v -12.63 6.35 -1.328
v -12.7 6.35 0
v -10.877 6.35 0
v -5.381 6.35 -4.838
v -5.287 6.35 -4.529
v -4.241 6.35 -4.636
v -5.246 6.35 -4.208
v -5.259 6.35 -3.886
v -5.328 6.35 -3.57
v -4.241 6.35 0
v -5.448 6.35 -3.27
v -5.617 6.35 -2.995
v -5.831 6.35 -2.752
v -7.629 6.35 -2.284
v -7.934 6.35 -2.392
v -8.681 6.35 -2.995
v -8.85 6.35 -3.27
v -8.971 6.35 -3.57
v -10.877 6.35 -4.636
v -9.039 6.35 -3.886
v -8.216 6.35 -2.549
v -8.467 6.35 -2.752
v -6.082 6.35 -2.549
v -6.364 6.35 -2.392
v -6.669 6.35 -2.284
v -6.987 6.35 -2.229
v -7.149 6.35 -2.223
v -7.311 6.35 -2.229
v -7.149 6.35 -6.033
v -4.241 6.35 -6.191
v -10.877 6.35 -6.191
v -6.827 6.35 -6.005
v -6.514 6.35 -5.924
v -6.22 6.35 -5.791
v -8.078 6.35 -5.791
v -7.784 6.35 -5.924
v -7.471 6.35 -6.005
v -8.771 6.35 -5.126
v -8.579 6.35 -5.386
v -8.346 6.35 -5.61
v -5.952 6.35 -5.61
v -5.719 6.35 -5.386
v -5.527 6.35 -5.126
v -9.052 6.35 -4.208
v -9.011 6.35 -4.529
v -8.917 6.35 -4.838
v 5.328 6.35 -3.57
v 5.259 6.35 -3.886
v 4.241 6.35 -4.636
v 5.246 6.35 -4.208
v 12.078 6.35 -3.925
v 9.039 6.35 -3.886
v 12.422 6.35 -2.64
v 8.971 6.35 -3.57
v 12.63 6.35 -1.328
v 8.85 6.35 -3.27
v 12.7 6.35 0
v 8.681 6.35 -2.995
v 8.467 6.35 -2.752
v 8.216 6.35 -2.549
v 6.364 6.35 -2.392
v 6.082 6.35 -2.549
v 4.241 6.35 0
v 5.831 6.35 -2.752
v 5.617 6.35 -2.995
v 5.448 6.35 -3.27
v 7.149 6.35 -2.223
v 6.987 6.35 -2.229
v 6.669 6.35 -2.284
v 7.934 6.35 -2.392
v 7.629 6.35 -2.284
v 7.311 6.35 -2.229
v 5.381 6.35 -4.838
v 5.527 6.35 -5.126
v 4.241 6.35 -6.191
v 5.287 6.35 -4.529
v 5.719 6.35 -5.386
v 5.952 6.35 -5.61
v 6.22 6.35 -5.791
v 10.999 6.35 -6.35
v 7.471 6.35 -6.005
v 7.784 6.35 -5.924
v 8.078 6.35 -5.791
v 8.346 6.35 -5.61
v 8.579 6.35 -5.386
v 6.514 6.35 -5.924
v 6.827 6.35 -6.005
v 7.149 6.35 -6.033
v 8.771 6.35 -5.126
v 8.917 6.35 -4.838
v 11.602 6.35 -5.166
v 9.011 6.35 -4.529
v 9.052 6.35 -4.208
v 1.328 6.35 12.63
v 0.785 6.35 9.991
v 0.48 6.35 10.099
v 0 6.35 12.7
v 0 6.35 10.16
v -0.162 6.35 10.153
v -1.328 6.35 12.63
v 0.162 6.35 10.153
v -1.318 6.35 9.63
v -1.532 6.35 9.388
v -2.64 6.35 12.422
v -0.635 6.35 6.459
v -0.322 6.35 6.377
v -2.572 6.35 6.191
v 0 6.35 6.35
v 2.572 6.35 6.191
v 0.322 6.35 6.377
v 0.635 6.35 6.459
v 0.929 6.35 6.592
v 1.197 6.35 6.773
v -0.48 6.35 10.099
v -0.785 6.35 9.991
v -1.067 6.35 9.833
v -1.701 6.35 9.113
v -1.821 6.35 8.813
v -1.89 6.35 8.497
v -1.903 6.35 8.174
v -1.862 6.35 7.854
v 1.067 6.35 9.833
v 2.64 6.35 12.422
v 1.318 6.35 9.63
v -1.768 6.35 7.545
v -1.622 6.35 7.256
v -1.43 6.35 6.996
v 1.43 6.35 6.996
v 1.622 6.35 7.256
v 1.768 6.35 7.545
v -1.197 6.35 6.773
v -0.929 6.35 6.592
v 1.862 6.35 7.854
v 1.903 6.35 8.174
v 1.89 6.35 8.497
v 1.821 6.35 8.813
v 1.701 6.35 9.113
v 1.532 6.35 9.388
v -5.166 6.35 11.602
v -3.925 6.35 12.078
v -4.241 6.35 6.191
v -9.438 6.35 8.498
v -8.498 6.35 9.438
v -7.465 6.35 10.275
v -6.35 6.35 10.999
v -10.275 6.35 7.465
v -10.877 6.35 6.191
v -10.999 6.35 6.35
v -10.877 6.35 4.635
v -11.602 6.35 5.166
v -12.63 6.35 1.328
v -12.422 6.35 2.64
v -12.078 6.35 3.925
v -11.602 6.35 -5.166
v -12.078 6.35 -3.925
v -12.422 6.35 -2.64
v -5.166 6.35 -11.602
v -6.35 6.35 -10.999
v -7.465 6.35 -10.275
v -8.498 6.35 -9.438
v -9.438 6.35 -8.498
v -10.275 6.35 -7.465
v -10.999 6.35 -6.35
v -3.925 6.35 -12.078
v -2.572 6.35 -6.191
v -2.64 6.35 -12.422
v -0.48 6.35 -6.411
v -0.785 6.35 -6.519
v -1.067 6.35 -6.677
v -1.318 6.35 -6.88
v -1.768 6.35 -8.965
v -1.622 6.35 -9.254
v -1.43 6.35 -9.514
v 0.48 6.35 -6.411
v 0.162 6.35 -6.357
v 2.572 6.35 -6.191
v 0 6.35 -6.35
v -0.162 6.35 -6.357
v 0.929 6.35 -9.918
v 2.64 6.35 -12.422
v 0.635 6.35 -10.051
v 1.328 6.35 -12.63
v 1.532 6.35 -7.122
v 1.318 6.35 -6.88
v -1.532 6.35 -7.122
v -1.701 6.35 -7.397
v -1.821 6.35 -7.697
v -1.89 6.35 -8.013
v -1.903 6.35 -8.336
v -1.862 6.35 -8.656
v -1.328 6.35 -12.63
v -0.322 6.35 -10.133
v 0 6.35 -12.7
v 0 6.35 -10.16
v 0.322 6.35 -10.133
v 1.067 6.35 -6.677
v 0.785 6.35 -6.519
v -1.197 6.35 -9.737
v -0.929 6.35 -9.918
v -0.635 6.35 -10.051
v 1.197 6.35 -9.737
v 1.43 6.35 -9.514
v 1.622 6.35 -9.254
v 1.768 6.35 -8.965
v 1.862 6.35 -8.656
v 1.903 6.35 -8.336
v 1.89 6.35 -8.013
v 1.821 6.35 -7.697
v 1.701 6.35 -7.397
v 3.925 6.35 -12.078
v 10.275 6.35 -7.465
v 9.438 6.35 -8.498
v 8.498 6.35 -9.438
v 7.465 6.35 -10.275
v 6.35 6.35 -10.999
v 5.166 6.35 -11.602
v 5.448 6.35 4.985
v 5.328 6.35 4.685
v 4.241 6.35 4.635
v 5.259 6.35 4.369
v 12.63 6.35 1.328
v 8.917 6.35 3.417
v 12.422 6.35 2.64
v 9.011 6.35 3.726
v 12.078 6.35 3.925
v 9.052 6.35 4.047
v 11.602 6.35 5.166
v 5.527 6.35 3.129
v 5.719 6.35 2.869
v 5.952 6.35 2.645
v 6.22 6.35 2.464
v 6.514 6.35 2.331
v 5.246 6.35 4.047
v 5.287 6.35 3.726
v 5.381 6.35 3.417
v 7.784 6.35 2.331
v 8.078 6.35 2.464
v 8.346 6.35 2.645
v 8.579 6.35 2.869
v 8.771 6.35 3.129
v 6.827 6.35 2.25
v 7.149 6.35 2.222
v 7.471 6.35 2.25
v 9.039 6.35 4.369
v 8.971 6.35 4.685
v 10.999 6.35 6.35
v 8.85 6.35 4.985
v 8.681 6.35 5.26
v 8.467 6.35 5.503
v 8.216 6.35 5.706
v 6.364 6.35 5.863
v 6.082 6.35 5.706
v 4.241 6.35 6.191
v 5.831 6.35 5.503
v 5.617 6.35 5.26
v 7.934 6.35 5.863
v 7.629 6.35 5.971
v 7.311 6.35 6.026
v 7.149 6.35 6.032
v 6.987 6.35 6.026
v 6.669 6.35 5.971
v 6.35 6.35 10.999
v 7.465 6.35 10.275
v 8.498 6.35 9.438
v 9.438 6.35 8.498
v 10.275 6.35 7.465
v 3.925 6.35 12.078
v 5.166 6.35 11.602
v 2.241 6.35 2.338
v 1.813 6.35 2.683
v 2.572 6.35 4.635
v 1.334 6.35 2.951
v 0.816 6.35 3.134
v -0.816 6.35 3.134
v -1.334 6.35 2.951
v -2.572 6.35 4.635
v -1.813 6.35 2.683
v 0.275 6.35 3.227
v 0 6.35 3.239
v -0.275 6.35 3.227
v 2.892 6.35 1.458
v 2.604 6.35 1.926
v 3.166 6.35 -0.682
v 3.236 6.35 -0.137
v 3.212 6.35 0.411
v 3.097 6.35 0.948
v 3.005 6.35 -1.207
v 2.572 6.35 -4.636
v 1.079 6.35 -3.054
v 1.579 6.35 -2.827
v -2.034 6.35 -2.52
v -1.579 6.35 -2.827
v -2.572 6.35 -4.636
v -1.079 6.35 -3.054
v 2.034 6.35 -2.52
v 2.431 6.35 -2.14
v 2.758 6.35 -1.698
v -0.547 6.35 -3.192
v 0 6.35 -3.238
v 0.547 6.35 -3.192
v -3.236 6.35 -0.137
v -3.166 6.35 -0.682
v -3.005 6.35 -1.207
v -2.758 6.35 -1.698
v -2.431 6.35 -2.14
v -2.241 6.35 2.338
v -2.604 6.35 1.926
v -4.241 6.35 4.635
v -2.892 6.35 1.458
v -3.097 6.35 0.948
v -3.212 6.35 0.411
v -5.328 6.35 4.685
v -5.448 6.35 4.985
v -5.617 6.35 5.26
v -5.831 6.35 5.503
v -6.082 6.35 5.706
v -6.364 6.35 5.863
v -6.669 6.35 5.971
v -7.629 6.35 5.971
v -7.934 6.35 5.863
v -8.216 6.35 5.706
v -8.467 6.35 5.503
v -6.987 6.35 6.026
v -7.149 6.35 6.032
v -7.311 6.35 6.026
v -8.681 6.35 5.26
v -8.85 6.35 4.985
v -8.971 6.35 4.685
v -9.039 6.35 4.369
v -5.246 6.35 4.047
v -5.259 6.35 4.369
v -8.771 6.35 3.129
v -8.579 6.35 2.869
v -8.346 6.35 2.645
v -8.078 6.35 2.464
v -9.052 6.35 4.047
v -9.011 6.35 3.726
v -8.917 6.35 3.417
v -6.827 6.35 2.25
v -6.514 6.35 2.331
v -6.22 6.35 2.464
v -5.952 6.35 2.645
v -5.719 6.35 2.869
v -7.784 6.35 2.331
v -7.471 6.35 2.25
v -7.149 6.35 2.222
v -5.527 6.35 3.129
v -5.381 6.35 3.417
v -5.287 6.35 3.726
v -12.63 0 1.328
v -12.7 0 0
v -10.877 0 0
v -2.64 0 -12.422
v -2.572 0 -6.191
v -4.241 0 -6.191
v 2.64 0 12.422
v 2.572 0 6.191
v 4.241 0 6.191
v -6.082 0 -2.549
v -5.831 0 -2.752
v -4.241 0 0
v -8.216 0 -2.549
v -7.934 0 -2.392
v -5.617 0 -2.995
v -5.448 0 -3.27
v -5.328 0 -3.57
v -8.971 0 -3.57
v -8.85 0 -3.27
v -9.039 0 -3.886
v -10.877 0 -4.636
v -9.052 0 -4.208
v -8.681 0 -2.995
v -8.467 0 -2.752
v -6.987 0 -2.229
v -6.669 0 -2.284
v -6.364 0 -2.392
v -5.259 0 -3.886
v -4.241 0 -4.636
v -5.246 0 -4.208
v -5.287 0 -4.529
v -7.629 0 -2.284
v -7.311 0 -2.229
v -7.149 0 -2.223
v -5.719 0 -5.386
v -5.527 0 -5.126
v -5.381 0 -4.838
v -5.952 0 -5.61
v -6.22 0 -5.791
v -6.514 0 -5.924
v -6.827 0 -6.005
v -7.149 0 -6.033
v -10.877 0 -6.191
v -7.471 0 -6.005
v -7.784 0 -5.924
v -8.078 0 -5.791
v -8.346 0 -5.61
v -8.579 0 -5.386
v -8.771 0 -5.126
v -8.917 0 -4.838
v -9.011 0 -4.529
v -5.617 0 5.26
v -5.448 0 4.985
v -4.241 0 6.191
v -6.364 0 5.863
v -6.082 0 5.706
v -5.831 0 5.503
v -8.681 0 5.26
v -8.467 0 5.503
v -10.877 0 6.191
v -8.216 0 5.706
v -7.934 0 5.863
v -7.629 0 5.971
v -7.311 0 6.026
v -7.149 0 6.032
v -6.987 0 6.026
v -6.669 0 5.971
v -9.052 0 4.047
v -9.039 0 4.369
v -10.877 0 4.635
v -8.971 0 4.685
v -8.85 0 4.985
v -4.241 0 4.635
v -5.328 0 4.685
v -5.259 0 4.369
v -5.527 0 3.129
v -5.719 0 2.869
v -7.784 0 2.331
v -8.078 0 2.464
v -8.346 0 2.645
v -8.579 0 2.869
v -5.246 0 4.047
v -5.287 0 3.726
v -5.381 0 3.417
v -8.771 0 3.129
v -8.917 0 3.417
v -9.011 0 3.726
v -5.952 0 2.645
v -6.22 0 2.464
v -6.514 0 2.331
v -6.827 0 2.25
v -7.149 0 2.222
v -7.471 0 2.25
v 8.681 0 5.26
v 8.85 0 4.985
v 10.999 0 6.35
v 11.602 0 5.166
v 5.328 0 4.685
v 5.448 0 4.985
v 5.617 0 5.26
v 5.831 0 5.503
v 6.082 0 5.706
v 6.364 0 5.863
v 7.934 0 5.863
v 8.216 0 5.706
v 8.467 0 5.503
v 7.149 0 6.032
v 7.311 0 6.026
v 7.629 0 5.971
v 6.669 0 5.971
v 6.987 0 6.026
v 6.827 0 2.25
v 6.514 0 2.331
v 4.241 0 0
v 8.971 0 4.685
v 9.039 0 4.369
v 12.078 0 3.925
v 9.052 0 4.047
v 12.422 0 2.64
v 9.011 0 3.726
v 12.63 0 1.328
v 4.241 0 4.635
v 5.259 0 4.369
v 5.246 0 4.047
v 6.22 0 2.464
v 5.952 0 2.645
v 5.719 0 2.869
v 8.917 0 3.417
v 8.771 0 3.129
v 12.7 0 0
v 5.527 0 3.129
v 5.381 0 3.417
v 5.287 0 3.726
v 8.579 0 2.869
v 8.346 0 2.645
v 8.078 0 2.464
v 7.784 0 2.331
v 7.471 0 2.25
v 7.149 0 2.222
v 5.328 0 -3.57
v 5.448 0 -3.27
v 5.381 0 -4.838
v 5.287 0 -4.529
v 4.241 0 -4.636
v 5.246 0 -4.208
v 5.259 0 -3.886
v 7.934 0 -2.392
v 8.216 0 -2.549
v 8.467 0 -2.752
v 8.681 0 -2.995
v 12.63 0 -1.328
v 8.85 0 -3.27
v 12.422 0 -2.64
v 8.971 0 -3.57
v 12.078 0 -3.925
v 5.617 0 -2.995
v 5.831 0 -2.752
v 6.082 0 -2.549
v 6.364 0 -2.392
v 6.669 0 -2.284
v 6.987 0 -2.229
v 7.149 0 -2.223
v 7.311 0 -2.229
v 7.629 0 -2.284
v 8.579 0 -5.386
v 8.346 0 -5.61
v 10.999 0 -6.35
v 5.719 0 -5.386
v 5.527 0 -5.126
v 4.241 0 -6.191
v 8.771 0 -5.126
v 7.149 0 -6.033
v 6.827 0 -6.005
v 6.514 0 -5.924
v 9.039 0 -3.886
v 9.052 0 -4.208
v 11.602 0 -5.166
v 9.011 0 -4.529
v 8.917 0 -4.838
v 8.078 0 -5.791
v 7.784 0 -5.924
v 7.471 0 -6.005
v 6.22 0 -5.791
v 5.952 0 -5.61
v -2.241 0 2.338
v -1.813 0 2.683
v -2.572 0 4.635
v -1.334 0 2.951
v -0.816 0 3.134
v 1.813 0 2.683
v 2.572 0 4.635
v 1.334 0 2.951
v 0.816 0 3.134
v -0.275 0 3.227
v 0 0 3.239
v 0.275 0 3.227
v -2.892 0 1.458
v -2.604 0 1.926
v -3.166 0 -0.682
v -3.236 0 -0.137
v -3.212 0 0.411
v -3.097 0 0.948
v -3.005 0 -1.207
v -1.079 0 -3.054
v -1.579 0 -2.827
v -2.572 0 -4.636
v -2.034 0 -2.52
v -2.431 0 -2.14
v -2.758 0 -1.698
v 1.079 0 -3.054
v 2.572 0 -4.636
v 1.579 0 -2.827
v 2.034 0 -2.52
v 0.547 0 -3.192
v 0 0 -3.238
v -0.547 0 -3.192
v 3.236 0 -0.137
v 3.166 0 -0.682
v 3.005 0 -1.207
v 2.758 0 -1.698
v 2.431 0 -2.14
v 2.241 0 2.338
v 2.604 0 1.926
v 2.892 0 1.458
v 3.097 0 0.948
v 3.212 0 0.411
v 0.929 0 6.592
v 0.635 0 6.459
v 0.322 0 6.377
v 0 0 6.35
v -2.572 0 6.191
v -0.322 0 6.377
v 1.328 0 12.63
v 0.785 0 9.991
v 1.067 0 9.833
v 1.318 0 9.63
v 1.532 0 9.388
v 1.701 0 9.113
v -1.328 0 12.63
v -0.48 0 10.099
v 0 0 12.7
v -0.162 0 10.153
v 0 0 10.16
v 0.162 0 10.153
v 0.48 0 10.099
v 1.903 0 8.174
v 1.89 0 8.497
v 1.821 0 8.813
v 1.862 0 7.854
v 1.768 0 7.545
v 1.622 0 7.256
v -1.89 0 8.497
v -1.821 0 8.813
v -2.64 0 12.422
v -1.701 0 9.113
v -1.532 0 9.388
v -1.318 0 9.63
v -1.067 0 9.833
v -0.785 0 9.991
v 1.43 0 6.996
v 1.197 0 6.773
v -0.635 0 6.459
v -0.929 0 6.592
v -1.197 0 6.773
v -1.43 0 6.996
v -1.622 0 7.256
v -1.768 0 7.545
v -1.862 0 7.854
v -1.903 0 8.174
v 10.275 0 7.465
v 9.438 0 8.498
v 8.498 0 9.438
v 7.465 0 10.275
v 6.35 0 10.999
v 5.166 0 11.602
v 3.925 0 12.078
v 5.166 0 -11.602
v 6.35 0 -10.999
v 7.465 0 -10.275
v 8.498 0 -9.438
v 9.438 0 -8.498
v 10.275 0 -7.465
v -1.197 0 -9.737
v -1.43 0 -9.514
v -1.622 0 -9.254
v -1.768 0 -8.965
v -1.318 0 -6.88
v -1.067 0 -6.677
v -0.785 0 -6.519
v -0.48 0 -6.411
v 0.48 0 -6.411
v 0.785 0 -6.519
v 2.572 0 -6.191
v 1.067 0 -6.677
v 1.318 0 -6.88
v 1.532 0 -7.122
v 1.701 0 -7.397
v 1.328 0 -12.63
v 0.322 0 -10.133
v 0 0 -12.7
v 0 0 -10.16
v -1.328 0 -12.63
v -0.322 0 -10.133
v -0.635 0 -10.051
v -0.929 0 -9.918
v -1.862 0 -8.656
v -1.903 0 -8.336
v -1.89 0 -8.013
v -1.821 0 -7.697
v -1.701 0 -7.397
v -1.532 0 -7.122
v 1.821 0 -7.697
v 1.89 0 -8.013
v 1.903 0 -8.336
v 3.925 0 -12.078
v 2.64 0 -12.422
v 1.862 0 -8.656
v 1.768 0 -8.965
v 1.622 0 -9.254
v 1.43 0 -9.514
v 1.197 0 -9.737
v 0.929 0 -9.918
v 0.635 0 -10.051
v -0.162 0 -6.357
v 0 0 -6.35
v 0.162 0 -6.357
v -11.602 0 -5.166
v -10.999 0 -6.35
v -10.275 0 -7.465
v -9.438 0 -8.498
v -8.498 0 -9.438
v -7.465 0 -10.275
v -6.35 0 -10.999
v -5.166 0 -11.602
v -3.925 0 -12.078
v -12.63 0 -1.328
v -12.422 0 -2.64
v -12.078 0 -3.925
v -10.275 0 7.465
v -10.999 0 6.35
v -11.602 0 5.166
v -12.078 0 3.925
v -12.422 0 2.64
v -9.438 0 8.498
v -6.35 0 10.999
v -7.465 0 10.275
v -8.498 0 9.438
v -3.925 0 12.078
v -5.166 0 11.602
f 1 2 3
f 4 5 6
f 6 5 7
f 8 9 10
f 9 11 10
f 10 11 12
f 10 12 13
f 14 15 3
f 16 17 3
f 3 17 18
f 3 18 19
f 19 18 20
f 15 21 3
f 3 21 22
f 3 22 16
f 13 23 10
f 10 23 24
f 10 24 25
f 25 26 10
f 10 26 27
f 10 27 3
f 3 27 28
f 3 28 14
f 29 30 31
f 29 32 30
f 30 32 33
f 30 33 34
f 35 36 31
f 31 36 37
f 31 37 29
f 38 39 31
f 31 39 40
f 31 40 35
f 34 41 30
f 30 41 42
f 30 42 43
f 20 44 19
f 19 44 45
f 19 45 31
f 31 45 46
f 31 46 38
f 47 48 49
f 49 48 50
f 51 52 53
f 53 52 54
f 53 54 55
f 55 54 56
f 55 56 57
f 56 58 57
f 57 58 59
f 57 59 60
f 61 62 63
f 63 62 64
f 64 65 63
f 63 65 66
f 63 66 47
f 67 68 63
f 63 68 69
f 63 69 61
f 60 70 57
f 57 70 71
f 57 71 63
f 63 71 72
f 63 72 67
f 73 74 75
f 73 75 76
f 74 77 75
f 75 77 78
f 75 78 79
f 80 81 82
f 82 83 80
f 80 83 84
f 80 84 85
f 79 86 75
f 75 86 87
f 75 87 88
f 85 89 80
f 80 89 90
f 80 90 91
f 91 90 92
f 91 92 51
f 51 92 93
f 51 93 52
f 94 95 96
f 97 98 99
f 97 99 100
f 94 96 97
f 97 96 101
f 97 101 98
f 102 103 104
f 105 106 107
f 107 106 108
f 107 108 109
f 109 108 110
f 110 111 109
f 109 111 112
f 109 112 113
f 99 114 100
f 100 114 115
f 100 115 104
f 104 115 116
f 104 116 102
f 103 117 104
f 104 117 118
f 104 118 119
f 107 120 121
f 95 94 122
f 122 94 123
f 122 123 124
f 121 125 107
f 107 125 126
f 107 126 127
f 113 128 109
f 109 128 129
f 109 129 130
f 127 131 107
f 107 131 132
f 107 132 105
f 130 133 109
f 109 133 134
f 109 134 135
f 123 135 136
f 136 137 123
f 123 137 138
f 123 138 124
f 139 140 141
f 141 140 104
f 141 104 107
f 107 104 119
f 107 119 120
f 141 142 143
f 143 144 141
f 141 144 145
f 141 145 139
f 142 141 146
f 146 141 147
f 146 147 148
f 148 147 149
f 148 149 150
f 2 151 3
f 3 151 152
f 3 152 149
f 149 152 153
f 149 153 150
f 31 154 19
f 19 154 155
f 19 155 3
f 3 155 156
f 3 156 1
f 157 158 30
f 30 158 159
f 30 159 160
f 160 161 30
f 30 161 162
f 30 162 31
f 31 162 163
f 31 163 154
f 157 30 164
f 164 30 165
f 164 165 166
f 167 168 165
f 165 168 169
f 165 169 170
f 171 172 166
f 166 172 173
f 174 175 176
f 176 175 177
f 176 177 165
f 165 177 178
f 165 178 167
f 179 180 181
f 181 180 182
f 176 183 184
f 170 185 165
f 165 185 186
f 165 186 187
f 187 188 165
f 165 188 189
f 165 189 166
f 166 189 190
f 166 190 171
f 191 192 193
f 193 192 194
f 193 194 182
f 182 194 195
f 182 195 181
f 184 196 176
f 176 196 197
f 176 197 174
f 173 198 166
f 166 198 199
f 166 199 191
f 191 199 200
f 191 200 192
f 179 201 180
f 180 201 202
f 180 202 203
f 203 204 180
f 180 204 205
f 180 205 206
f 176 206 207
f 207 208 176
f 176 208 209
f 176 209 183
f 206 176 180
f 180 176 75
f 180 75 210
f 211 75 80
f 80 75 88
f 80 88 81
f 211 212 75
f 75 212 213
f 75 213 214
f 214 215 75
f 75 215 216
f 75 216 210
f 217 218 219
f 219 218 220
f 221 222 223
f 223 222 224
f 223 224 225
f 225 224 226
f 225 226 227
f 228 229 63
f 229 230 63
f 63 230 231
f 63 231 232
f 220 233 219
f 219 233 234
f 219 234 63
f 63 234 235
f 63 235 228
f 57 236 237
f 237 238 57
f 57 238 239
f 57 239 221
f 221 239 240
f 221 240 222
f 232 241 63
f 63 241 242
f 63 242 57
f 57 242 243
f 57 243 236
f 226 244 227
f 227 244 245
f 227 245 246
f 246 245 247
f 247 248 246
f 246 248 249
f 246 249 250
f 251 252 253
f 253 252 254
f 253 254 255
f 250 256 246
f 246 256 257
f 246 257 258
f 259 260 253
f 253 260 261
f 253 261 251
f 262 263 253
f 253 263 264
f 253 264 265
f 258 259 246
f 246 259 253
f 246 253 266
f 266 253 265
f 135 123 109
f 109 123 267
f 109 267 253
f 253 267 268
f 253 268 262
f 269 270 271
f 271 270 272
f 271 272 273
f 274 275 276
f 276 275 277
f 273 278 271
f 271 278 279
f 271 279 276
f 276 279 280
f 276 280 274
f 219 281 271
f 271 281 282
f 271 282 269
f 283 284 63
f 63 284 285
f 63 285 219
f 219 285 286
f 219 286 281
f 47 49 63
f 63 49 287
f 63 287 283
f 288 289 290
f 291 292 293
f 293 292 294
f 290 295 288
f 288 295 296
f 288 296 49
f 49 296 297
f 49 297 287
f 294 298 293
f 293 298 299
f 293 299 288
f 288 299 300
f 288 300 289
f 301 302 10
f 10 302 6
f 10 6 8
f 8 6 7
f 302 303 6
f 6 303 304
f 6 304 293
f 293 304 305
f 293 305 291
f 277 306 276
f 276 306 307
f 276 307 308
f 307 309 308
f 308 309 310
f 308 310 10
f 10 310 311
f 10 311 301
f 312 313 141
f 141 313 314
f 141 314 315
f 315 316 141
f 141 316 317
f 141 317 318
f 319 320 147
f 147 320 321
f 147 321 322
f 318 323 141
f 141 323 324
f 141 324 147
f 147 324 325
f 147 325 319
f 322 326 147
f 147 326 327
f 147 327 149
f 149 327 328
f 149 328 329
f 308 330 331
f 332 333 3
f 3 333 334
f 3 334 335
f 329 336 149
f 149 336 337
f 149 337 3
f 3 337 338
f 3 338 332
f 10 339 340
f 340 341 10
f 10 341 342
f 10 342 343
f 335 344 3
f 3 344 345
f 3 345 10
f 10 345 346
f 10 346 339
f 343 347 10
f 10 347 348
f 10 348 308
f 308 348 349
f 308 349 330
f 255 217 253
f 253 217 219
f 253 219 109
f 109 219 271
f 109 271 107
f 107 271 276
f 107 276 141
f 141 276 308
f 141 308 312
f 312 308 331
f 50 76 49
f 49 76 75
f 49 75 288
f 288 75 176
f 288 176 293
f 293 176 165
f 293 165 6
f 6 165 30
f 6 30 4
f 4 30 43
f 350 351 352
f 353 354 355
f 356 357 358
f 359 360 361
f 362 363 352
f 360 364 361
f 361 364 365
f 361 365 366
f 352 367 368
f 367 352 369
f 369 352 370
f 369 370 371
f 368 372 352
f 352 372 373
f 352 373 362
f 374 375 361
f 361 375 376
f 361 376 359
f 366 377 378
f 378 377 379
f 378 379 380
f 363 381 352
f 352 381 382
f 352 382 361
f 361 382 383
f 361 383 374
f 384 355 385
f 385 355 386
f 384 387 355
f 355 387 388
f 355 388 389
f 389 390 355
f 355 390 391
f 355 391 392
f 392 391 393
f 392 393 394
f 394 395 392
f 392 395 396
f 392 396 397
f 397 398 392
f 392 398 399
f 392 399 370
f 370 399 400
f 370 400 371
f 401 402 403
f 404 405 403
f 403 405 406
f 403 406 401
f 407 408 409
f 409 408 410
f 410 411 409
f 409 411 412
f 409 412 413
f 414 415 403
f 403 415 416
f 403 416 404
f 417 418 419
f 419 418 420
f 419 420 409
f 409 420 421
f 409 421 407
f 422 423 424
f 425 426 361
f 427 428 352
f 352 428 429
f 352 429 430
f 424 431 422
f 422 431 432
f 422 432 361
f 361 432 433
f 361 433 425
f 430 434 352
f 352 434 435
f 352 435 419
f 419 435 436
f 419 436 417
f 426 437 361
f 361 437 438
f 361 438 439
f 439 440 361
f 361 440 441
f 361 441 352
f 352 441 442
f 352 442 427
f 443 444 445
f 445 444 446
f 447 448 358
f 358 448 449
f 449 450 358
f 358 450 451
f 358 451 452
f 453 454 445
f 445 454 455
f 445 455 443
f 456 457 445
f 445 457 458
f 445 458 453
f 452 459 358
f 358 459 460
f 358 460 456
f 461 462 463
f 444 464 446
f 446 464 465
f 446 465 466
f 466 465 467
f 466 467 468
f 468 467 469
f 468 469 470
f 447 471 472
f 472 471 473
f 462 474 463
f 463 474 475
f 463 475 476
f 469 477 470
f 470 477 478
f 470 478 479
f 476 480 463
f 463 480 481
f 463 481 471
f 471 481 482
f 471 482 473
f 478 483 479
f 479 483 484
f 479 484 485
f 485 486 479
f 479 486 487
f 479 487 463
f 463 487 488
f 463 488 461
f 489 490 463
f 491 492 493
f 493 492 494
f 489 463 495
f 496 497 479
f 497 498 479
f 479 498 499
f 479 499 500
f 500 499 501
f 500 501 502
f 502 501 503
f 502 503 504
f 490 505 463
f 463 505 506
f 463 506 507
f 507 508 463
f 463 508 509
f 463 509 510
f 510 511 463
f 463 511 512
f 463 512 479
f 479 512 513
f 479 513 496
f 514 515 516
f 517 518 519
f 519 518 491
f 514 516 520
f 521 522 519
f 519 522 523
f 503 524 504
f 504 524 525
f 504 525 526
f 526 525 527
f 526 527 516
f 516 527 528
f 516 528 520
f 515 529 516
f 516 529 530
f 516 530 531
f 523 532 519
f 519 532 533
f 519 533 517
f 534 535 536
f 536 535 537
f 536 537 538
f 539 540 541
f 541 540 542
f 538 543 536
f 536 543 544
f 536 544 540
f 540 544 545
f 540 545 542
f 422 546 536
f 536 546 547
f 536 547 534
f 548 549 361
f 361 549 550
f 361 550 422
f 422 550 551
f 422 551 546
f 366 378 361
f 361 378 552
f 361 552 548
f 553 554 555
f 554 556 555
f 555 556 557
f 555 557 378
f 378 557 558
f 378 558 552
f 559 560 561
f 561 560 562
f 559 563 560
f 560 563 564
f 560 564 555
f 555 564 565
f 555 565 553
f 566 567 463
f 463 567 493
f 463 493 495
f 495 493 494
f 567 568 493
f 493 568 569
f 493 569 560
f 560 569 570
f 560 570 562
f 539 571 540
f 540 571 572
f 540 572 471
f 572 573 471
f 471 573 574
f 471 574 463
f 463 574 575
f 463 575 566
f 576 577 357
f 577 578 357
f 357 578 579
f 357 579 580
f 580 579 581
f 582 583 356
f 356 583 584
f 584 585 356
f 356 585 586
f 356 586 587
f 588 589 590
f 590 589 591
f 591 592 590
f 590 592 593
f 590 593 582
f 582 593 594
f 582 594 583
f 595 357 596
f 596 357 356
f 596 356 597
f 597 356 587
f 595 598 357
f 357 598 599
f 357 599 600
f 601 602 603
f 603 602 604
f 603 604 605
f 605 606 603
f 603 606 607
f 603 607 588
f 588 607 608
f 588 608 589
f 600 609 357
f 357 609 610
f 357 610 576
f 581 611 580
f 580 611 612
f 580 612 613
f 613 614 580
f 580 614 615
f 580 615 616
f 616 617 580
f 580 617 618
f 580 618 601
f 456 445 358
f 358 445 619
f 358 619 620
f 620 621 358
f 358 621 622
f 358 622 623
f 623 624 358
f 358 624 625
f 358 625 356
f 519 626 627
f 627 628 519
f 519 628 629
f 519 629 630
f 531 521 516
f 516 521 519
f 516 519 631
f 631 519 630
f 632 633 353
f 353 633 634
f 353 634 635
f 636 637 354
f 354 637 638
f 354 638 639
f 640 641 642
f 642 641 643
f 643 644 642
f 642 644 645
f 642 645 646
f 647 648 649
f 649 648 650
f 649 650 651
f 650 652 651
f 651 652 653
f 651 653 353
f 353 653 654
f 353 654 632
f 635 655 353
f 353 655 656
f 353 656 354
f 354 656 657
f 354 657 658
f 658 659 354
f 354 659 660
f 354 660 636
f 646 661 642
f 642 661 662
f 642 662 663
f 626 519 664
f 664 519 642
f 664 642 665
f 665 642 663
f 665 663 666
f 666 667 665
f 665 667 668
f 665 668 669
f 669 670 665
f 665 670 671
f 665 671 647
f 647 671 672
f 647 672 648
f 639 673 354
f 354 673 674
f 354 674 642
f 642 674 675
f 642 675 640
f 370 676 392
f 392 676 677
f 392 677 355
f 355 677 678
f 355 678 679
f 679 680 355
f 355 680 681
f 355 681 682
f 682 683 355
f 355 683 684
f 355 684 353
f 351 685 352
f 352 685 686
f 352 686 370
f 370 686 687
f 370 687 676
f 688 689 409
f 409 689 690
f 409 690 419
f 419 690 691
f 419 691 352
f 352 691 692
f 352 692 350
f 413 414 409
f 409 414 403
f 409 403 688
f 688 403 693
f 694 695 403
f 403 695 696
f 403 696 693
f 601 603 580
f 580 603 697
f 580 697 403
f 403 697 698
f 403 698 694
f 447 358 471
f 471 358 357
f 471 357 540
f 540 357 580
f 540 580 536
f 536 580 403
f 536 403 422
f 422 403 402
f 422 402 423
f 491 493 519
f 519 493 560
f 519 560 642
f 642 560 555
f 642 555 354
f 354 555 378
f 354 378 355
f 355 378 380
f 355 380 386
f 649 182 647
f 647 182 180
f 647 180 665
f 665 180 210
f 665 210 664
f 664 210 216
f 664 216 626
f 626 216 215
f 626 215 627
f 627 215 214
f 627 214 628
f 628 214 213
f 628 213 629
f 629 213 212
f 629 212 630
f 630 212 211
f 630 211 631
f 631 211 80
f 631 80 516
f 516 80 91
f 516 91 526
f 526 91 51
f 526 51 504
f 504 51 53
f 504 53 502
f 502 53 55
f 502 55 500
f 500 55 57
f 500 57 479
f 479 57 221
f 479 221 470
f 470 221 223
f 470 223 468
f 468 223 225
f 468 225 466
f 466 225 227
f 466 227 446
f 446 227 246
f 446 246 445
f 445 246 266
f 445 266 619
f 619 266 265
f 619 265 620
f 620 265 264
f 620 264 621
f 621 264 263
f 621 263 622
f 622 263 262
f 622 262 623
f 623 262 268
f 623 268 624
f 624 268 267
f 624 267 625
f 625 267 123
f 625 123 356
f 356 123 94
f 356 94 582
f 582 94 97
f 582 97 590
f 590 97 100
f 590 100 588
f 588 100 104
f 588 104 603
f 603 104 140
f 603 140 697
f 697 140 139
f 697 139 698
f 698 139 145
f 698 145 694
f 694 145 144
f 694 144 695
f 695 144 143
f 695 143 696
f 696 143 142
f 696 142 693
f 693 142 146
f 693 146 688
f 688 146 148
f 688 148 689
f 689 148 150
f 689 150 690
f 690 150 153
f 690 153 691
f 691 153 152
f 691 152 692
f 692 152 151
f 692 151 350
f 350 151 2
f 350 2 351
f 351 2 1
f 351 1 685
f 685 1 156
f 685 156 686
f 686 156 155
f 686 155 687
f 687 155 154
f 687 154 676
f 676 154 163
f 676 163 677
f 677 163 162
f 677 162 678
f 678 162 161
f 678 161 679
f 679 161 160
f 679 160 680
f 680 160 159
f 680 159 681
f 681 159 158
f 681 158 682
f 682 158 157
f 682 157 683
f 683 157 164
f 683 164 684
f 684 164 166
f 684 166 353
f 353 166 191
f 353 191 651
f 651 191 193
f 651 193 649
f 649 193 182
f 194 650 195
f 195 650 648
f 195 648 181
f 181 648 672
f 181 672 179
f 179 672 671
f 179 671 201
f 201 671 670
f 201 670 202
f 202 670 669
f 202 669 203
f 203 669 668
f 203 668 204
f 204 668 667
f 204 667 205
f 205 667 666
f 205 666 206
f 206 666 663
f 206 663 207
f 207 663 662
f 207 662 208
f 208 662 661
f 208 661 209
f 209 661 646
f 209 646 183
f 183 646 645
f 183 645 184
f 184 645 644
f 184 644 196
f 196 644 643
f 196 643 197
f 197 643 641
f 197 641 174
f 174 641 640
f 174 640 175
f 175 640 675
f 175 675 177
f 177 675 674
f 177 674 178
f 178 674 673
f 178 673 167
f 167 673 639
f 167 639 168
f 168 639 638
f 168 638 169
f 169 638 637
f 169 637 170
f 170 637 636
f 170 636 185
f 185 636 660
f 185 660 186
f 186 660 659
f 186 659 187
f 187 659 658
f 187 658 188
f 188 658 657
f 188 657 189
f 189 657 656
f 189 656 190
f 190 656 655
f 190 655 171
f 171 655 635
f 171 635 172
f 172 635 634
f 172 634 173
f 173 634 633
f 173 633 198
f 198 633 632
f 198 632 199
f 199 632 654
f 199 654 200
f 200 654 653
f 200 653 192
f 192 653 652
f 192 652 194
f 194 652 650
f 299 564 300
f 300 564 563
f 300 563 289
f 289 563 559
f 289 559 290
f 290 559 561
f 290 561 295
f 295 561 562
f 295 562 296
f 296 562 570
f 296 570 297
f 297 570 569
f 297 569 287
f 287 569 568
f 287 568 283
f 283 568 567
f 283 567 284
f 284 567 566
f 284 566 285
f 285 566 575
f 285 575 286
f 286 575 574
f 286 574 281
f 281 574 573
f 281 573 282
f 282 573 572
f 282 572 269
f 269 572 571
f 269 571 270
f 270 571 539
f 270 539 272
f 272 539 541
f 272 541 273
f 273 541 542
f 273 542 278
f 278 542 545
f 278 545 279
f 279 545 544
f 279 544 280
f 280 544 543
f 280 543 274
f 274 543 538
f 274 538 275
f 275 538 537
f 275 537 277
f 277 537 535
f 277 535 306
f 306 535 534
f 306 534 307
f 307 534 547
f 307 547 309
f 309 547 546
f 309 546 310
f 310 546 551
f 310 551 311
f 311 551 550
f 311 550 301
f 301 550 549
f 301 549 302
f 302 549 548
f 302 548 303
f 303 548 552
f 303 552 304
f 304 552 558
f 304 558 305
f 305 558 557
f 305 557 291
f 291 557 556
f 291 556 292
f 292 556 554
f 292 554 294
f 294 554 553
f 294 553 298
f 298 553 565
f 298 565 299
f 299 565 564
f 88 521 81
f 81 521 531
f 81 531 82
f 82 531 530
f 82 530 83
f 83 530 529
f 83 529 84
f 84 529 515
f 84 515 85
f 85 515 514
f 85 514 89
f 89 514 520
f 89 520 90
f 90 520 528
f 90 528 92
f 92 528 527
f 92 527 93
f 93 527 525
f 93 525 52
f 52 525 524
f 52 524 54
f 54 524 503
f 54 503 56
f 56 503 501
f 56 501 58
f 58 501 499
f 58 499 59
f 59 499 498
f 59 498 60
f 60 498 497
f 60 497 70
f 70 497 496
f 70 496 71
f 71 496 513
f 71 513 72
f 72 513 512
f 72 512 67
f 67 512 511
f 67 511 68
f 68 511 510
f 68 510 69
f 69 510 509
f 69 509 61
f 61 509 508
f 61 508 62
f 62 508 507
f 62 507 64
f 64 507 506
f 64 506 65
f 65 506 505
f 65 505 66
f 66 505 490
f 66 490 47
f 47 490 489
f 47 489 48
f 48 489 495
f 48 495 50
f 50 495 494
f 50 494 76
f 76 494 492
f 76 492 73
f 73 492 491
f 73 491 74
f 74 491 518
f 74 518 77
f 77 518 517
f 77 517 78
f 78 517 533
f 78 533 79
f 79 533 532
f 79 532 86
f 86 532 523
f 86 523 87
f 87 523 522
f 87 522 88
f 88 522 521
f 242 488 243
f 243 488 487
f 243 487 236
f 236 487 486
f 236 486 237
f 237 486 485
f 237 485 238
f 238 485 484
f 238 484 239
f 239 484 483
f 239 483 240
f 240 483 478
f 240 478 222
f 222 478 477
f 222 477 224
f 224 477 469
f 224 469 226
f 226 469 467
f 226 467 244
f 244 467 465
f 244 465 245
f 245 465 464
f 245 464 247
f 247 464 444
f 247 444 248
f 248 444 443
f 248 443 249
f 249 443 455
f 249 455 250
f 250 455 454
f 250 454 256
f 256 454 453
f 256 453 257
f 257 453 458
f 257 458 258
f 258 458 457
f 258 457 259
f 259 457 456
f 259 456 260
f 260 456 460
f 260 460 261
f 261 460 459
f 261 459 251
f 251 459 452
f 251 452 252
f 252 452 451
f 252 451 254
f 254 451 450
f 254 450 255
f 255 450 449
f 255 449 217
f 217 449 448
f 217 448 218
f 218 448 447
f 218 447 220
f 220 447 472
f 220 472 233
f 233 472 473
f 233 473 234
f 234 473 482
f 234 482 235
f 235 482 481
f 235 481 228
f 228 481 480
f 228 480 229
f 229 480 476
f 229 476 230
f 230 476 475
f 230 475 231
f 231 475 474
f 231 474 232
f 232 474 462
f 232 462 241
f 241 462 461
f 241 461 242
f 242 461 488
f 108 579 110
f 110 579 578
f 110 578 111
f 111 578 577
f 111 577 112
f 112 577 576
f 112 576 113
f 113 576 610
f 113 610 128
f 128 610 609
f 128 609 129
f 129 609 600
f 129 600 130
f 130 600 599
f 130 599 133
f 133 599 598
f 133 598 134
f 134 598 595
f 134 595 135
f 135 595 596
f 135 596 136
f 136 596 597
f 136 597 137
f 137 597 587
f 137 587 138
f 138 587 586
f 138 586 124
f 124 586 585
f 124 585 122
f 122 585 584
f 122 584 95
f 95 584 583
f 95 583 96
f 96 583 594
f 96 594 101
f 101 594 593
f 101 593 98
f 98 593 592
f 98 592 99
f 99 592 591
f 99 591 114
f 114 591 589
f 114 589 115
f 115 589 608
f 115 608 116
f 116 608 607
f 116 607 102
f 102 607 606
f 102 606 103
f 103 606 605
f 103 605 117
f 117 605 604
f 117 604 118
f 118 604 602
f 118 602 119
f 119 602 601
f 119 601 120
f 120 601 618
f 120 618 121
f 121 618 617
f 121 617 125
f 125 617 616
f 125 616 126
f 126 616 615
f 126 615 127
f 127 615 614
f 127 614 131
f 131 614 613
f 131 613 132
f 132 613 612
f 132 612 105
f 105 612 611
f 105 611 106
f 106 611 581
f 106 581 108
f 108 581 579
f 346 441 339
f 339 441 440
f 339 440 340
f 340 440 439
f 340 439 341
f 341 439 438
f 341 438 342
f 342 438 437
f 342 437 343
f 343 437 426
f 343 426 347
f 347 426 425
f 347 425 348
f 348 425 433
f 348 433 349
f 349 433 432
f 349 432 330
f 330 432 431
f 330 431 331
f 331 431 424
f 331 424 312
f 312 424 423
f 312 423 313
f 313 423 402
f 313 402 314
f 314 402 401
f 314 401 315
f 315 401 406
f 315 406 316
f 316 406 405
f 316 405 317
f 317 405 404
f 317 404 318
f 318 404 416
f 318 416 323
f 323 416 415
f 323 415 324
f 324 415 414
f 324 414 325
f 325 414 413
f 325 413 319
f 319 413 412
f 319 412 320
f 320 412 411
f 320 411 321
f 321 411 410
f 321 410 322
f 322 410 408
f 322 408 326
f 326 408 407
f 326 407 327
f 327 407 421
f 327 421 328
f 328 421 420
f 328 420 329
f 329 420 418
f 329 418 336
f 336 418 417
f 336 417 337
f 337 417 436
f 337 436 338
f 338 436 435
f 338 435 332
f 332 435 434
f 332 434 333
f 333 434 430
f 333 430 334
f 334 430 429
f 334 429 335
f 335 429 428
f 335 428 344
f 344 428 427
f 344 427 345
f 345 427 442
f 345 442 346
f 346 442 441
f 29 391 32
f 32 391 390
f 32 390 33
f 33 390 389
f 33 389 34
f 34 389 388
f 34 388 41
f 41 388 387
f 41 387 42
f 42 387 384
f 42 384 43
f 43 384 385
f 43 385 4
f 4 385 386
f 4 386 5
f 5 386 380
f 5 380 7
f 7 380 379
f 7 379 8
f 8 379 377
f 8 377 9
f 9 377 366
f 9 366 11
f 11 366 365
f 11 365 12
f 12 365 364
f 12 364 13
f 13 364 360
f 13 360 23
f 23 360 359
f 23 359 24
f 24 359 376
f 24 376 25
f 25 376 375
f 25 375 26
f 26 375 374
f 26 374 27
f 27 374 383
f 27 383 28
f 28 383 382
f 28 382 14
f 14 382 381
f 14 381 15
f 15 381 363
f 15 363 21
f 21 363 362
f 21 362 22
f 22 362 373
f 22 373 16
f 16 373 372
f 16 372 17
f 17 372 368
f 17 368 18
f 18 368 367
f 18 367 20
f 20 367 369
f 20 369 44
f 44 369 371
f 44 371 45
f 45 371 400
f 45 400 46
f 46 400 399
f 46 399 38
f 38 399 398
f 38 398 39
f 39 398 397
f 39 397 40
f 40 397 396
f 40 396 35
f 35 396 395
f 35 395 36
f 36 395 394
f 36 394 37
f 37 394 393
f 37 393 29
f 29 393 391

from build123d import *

# Parameters (mm, degrees)
SKETCH1_R   = 12.7
SKETCH1_R_2 = 1.905
SKETCH1_R_3 = 3.2385
BASE_DEPTH  = 6.35


with BuildPart() as part:
    # Sketch1 → base (new body)
    with BuildSketch(Plane(origin=(0, 0, 0), x_dir=(1, 0, 0), z_dir=(0, 1, 0))):
        with Locations(Location((0, 0, 0), (0, 0, 270))):
            Circle(SKETCH1_R)
        with Locations(Location((0, 8.255, 0), (0, 0, 270))):
            Circle(SKETCH1_R_2, mode=Mode.SUBTRACT)
        with Locations(Location((0, 0, 0), (0, 0, 270))):
            Circle(SKETCH1_R_3, mode=Mode.SUBTRACT)
        with Locations(Location((7.149039708, 4.1275, 0), (0, 0, 270))):
            Circle(SKETCH1_R_2, mode=Mode.SUBTRACT)
        with Locations(Location((7.149039708, -4.1275, 0), (0, 0, 270))):
            Circle(SKETCH1_R_2, mode=Mode.SUBTRACT)
        with Locations(Location((0, -8.255, 0), (0, 0, 270))):
            Circle(SKETCH1_R_2, mode=Mode.SUBTRACT)
        with Locations(Location((-7.149039708, -4.1275, 0), (0, 0, 270))):
            Circle(SKETCH1_R_2, mode=Mode.SUBTRACT)
        with Locations(Location((-7.149039708, 4.1275, 0), (0, 0, 270))):
            Circle(SKETCH1_R_2, mode=Mode.SUBTRACT)
    extrude(amount=BASE_DEPTH)


solid = part.part
